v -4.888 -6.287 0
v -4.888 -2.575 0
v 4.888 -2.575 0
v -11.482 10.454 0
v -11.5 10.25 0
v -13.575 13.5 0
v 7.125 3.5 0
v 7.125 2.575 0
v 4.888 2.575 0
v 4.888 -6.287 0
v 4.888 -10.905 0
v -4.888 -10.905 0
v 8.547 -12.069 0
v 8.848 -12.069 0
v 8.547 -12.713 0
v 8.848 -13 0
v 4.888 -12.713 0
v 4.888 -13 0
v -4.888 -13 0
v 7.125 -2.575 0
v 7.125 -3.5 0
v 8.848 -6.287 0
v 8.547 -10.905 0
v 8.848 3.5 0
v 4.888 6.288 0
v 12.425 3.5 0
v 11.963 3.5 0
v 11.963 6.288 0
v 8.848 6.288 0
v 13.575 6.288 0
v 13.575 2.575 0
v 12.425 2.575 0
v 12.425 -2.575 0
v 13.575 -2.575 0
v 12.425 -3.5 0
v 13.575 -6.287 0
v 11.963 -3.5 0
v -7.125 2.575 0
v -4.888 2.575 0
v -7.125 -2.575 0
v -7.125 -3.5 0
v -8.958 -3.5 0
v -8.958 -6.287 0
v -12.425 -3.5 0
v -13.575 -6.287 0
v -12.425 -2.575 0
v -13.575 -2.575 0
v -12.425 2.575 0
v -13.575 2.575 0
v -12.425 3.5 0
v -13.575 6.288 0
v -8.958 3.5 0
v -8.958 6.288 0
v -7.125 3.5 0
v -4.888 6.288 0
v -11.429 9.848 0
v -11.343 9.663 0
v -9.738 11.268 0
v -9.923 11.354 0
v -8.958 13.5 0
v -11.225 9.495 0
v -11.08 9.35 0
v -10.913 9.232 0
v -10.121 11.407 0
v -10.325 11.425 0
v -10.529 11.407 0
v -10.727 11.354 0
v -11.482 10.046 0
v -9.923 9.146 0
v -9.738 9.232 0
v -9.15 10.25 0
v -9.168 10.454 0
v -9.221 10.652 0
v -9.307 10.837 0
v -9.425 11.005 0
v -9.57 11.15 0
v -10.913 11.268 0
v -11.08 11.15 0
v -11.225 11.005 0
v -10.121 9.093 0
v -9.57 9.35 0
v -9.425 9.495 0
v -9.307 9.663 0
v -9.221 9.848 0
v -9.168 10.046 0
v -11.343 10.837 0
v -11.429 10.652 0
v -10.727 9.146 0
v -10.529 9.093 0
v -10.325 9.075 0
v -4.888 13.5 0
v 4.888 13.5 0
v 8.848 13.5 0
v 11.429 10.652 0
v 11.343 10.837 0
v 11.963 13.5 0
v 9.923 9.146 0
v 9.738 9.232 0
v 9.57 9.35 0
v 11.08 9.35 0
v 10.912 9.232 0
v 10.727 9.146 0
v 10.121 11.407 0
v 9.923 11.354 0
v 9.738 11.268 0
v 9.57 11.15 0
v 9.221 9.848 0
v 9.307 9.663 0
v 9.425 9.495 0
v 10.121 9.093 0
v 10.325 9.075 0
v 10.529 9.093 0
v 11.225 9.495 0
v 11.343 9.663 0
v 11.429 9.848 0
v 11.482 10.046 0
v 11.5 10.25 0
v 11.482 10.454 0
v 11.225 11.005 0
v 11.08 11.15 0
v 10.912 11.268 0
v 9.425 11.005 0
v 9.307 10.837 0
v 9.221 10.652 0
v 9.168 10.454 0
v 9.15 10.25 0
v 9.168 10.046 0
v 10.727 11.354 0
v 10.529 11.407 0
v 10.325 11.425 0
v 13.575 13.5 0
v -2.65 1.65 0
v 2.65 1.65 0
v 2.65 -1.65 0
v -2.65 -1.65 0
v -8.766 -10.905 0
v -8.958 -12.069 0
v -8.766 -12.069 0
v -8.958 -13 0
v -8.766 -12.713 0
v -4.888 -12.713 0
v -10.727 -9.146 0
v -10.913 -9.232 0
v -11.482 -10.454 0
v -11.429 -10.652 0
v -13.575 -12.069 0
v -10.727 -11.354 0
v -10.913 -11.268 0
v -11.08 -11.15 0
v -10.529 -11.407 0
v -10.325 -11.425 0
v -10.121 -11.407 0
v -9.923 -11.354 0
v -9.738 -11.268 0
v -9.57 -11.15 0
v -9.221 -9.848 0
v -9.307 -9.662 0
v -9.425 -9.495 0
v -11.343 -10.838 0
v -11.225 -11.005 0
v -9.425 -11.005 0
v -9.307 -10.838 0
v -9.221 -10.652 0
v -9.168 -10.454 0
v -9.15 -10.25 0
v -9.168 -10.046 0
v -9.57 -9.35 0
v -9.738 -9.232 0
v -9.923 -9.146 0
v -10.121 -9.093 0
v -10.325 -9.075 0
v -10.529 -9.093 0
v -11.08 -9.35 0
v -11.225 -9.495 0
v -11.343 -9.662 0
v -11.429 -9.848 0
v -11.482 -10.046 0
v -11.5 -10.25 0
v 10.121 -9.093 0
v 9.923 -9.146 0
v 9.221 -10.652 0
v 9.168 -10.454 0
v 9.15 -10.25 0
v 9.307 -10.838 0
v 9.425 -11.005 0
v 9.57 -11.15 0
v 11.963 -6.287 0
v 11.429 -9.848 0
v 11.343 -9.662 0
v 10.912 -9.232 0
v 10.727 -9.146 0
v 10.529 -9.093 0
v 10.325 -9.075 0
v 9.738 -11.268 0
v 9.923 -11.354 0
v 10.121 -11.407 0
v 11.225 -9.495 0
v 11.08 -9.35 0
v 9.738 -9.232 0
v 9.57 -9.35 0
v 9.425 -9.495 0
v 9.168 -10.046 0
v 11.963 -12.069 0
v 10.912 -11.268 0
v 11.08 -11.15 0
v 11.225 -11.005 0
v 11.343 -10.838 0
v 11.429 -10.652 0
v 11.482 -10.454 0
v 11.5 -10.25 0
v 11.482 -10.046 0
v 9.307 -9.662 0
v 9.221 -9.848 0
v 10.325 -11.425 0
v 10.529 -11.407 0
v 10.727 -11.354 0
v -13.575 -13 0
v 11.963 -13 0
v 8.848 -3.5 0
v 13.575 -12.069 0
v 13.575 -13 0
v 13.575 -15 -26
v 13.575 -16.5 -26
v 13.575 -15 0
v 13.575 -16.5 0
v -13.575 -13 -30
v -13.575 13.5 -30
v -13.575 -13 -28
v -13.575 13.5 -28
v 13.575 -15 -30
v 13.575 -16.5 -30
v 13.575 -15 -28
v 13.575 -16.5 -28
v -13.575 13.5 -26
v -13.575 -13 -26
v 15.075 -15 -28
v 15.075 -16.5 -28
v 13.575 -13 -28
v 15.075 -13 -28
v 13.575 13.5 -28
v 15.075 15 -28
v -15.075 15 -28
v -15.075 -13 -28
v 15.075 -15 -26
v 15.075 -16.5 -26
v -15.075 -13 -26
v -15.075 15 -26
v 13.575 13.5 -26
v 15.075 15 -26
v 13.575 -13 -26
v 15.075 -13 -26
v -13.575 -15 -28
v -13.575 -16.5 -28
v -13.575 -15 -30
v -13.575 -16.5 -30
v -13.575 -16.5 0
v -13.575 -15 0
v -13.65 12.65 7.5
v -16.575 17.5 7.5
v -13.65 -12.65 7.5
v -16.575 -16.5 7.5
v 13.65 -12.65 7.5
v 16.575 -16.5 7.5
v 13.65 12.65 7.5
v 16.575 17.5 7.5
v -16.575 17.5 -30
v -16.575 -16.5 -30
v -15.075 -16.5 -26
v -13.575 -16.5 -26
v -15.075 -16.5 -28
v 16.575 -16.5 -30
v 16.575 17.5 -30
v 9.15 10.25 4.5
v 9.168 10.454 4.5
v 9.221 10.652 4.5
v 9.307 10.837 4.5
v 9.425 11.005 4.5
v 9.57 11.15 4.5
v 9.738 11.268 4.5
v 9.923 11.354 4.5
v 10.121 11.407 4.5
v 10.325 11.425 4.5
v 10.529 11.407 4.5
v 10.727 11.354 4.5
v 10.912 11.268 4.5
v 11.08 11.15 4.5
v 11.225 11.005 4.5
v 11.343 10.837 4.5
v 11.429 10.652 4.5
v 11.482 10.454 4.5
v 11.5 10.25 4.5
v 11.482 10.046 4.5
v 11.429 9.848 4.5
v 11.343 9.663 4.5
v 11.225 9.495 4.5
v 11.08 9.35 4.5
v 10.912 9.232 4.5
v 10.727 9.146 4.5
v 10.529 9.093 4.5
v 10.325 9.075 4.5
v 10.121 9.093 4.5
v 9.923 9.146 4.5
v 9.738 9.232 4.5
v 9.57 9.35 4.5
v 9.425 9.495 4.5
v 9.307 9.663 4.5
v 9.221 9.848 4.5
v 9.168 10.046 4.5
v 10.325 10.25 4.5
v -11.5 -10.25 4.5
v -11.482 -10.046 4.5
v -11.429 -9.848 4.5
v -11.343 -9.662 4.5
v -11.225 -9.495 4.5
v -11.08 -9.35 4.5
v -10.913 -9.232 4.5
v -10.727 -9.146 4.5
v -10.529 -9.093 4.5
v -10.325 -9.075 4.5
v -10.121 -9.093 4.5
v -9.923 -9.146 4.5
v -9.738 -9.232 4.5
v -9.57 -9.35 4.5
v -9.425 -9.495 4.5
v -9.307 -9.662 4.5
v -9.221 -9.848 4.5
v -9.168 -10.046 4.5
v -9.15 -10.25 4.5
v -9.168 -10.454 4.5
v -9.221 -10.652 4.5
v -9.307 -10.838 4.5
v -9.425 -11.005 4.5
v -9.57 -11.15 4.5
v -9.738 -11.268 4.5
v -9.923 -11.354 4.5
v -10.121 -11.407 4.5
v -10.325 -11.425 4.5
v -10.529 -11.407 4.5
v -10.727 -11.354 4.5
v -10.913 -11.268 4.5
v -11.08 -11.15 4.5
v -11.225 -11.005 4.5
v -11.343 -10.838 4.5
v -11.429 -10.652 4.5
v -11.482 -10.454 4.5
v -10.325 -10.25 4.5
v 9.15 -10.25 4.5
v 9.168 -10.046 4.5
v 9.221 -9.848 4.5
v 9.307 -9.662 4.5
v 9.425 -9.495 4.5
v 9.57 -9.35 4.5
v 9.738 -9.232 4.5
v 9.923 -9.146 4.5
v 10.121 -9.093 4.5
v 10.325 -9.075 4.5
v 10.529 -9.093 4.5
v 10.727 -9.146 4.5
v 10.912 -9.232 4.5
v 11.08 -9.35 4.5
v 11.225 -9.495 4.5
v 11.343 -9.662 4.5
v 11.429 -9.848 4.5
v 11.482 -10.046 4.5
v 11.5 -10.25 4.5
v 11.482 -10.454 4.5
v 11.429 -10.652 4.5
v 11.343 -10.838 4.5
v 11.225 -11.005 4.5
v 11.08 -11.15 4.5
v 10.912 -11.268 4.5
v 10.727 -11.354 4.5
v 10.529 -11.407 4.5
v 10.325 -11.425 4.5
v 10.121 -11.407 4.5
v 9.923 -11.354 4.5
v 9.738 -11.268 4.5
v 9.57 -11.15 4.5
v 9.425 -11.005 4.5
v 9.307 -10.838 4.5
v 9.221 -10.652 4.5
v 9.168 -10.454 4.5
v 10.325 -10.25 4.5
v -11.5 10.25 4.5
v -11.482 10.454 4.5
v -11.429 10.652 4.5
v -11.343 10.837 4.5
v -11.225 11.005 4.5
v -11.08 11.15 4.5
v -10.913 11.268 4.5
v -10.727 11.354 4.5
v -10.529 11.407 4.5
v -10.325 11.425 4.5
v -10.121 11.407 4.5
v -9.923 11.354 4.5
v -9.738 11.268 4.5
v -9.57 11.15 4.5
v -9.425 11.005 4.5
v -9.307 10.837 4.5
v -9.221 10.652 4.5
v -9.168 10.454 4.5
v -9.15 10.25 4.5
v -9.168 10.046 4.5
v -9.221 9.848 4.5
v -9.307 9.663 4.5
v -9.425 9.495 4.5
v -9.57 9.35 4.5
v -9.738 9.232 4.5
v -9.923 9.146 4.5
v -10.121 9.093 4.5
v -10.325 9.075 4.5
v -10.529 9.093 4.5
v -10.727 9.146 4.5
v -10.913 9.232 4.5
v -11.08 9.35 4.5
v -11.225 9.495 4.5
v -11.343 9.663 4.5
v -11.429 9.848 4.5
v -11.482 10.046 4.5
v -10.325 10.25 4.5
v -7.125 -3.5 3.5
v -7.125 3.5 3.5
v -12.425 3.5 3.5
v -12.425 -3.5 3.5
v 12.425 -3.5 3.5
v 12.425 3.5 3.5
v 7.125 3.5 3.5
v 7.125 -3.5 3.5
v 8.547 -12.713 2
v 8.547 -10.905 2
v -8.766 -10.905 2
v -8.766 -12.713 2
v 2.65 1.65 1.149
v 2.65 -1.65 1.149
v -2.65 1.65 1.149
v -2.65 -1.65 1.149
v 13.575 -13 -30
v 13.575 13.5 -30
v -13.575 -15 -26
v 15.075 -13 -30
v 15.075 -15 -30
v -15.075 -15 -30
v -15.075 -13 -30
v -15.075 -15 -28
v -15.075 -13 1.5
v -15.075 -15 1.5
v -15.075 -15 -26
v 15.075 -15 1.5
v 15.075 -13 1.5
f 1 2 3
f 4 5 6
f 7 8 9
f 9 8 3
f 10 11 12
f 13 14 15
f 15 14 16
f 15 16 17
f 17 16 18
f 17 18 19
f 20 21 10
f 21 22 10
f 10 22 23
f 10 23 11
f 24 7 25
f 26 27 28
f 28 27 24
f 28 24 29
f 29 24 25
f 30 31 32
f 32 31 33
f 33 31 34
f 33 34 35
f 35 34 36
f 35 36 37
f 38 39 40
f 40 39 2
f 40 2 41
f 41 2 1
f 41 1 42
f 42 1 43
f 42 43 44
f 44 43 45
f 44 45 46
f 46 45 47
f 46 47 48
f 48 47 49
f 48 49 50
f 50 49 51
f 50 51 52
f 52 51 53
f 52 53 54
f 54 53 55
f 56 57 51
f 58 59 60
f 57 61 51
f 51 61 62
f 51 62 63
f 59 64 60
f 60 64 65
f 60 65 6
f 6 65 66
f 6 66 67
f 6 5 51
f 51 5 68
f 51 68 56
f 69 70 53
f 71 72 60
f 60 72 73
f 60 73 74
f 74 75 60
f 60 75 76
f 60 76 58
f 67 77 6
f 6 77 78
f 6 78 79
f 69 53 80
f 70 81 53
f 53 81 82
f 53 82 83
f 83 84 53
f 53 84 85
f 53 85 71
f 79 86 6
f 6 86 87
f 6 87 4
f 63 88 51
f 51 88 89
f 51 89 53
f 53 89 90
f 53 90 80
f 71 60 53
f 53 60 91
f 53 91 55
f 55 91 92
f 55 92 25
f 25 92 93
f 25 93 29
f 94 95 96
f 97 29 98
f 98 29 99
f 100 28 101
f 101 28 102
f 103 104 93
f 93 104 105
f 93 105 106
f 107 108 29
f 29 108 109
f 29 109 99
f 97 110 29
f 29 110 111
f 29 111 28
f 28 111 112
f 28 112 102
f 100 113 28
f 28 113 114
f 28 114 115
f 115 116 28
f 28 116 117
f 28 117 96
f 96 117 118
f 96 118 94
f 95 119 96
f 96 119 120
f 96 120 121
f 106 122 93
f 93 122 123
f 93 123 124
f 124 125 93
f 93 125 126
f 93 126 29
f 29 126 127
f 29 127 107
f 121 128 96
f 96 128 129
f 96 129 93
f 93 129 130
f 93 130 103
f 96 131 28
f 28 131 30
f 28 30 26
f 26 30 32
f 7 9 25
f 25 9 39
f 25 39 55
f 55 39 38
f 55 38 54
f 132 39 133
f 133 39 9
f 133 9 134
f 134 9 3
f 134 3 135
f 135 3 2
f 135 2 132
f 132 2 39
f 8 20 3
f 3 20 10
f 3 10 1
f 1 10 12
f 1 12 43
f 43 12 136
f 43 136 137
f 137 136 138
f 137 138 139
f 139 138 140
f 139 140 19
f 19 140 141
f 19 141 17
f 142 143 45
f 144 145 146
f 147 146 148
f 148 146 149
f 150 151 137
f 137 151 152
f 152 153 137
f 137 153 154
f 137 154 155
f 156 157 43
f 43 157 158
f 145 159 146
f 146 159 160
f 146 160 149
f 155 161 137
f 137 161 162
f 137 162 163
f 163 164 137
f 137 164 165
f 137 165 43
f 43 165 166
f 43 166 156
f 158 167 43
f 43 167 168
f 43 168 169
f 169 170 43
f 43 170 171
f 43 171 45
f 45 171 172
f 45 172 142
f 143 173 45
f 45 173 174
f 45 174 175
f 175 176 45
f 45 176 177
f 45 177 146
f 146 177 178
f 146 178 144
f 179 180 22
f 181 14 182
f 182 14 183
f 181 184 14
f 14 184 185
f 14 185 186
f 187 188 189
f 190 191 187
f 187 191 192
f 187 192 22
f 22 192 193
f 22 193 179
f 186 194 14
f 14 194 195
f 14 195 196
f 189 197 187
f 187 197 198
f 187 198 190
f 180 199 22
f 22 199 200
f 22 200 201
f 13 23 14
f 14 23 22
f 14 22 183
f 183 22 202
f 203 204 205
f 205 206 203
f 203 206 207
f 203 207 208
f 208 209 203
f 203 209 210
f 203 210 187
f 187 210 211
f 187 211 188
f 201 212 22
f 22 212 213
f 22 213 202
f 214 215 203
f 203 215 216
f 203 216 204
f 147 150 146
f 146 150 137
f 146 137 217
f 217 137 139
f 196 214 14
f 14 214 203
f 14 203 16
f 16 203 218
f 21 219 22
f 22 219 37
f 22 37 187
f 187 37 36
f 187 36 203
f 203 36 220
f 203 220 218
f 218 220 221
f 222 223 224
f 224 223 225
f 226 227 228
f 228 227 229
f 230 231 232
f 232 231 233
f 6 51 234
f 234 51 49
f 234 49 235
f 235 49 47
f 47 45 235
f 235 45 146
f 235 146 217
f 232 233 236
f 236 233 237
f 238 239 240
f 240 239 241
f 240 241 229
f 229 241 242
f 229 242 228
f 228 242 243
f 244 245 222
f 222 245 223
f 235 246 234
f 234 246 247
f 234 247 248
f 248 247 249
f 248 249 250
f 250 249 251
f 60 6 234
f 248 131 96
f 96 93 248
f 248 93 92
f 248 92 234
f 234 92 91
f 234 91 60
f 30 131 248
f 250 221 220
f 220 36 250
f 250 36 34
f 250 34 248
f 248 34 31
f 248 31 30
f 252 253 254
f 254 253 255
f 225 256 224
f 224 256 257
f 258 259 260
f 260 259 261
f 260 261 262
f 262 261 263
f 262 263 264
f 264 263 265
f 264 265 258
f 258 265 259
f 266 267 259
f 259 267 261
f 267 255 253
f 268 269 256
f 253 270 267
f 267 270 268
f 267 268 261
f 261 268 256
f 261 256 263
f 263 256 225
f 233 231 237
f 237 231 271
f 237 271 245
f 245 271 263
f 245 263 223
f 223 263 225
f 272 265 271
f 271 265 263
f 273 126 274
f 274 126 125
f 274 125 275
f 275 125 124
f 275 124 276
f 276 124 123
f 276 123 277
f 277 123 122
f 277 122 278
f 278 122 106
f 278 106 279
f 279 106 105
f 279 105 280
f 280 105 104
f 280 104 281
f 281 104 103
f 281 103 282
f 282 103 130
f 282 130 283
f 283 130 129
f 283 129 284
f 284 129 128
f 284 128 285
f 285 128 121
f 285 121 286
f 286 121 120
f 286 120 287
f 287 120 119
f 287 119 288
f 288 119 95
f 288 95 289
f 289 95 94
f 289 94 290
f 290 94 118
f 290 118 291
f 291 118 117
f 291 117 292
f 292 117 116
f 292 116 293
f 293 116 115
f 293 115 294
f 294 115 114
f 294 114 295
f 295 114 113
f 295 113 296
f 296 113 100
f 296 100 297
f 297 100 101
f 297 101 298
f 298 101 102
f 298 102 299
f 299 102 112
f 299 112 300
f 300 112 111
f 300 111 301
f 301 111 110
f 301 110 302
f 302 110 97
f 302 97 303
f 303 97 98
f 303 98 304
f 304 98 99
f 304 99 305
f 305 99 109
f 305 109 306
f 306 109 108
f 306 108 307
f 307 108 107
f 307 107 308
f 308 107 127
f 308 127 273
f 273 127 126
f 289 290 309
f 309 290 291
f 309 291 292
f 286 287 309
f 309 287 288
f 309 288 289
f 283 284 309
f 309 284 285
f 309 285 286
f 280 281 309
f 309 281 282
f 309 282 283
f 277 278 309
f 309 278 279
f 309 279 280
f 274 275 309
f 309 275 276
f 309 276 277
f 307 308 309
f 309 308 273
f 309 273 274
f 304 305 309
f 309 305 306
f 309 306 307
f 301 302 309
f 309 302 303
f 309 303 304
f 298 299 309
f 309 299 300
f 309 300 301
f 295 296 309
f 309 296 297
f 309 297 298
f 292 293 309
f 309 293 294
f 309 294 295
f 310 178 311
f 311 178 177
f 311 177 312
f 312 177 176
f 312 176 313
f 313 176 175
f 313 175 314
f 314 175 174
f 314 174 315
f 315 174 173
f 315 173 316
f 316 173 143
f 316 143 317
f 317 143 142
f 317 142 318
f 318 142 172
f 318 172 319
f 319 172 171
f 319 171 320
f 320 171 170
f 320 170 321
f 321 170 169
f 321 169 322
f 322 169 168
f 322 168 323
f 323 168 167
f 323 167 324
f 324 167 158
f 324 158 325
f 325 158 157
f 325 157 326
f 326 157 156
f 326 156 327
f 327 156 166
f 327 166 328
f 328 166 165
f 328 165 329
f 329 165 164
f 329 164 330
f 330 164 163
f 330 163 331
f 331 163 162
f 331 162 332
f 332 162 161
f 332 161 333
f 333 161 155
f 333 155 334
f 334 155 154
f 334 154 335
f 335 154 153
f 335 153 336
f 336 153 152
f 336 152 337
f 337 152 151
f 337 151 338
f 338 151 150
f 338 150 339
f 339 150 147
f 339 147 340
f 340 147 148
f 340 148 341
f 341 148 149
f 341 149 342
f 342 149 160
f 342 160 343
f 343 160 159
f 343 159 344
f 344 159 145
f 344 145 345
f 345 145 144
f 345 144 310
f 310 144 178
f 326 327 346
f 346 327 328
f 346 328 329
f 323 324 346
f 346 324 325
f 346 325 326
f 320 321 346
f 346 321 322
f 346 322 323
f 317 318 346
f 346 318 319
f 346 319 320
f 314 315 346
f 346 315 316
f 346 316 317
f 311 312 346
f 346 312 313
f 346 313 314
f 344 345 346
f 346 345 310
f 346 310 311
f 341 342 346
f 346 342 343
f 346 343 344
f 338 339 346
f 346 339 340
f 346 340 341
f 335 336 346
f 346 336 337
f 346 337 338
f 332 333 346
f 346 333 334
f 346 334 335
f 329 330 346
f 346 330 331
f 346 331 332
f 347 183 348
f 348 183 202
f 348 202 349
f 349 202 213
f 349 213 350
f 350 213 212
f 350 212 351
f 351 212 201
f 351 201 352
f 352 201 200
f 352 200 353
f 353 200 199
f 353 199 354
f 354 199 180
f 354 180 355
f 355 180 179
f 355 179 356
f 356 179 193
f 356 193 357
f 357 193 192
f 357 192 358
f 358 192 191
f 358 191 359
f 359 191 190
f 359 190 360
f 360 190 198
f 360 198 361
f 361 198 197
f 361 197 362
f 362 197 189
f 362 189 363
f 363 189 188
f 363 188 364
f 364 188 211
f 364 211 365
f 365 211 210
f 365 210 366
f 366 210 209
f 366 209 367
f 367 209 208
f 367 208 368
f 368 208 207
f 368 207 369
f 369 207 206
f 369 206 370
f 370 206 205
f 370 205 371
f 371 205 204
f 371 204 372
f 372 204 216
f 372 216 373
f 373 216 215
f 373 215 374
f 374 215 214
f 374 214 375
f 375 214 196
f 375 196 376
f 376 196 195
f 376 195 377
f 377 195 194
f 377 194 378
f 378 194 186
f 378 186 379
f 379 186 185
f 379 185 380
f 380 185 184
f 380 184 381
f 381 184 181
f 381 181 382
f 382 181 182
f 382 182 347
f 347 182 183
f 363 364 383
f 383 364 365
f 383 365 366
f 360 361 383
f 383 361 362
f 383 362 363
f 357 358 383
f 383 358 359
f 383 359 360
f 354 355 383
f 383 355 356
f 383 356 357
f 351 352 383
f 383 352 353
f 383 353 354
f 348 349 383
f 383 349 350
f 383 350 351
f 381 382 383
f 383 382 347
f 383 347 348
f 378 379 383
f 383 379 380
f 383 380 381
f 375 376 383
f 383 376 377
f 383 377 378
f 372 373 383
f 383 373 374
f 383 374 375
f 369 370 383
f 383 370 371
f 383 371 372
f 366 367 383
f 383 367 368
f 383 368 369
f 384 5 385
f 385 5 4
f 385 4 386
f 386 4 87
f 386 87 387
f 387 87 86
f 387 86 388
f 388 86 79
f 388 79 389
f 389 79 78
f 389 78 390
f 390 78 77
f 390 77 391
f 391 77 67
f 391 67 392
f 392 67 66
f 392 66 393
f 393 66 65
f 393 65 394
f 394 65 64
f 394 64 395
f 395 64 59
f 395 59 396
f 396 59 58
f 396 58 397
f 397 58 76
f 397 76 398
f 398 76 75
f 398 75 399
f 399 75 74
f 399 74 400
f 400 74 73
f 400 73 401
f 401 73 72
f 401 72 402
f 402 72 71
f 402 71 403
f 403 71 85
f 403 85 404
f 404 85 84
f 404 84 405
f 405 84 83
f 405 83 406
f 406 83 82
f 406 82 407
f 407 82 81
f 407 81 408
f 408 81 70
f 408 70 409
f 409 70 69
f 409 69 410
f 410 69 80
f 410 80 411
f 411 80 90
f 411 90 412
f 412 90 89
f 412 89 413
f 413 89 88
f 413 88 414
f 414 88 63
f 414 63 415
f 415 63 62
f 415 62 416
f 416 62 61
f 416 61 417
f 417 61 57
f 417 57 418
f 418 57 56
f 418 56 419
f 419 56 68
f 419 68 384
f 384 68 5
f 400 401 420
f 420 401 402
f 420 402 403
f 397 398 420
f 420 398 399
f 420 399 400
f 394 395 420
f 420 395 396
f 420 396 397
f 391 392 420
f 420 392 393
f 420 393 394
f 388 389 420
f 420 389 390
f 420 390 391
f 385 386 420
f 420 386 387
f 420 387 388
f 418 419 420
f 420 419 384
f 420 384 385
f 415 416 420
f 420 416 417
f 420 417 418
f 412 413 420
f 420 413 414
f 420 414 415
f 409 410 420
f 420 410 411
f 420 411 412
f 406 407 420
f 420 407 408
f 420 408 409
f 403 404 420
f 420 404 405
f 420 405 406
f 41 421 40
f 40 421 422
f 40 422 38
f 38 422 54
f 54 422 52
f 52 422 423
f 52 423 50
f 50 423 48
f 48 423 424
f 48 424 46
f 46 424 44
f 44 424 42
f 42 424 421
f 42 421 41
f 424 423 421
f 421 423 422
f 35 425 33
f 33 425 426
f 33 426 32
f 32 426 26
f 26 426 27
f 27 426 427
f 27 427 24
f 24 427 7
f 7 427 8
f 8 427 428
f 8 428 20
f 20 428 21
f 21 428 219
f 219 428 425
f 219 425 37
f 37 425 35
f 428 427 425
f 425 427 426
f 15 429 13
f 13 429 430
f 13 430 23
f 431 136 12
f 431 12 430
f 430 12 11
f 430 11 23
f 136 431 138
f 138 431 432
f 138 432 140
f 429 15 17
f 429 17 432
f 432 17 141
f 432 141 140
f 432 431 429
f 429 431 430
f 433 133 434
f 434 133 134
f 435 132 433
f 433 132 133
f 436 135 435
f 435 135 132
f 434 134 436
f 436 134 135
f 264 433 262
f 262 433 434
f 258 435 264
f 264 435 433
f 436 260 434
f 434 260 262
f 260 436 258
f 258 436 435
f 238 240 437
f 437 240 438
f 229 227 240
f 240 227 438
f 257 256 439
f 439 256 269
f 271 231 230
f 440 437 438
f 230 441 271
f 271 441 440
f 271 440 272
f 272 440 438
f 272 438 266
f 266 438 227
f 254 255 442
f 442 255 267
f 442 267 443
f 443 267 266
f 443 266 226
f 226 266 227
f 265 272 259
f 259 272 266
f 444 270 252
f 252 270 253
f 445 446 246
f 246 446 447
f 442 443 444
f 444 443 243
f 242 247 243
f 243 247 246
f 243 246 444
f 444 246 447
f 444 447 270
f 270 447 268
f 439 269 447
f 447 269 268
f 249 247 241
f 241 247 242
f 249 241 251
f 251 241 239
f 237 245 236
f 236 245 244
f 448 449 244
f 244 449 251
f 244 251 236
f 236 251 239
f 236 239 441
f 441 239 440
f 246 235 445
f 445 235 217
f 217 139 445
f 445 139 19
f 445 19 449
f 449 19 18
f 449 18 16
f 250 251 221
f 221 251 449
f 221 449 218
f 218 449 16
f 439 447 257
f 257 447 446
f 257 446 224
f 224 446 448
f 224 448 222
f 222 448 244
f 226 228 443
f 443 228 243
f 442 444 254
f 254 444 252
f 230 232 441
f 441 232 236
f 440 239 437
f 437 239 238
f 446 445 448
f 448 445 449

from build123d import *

# Parameters (mm, degrees)
SKETCH2_W           = 33.15
SKETCH2_H           = 33
BOSS_EXTRUDE1_DEPTH = 7.5
SKETCH3_R           = 1.175
CUT_EXTRUDE1_DEPTH  = 4.5
SKETCH4_W           = 5.3
SKETCH4_H           = 7
CUT_EXTRUDE2_DEPTH  = 3.5
SKETCH5_W           = 17.312690108
SKETCH5_H           = 1.808425299
CUT_EXTRUDE3_DEPTH  = 2
SKETCH6_W           = 5.3
SKETCH6_H           = 3.3
CUT_EXTRUDE4_DEPTH  = 25.560753755
CHAMFER3_SIZE       = 11
CHAMFER3_SIZE2      = 6.350852961
SKETCH7_W           = 3
SKETCH7_H           = 33
SKETCH7_H_2         = 30
BOSS_EXTRUDE2_DEPTH = 30
SKETCH8_W           = 33.15
SKETCH8_H           = 37.5
BOSS_EXTRUDE3_DEPTH = 1
SKETCH9_W           = 1.5
SKETCH9_H           = 2
CUT_EXTRUDE5_DEPTH  = 31.5
SKETCH10_W          = 27.15
SKETCH10_H          = 2
CUT_EXTRUDE6_DEPTH  = 1.5
CUT_EXTRUDE7_START  = -30
SKETCH11_W          = 1.5
SKETCH11_H          = 2
CUT_EXTRUDE7_DEPTH  = 30
SKETCH14_W          = 30.15
SKETCH14_H          = 2
CUT_EXTRUDE8_DEPTH  = 1.5


with BuildPart() as part:
    # Sketch2 → Boss-Extrude1 (new body)
    with BuildSketch(Plane.XY):
        Rectangle(SKETCH2_W, SKETCH2_H)
    extrude(amount=BOSS_EXTRUDE1_DEPTH)

    # Sketch3 → Cut-Extrude1 (cut)
    with BuildSketch(Plane.XY):
        with Locations((10.325, 10.25)):
            Circle(SKETCH3_R)
        with Locations((-10.325, 10.25)):
            Circle(SKETCH3_R)
        with Locations((10.325, -10.25)):
            Circle(SKETCH3_R)
        with Locations((-10.325, -10.25)):
            Circle(SKETCH3_R)
    extrude(amount=CUT_EXTRUDE1_DEPTH, mode=Mode.SUBTRACT)

    # Sketch4 → Cut-Extrude2 (cut)
    with BuildSketch(Plane.XY):
        with Locations((9.775, 0)):
            Rectangle(SKETCH4_W, SKETCH4_H)
        with Locations((-9.775, 0)):
            Rectangle(SKETCH4_W, SKETCH4_H)
    extrude(amount=CUT_EXTRUDE2_DEPTH, mode=Mode.SUBTRACT)

    # Sketch5 → Cut-Extrude3 (cut)
    with BuildSketch(Plane.XY):
        with Locations((-0.109621432, -11.80915301)):
            Rectangle(SKETCH5_W, SKETCH5_H)
    extrude(amount=CUT_EXTRUDE3_DEPTH, mode=Mode.SUBTRACT)

    # Sketch6 → Cut-Extrude4 (cut, through all)
    with BuildSketch(Plane.XY):
        Rectangle(SKETCH6_W, SKETCH6_H)
    extrude(amount=CUT_EXTRUDE4_DEPTH, mode=Mode.SUBTRACT)

    # Chamfer3
    chamfer3_edges = [part.edges().sort_by_distance(p)[0] for p in [
        (2.65, 0, 7.5),
        (0, 1.65, 7.5),
        (-2.65, 0, 7.5),
        (0, -1.65, 7.5),
    ]]
    chamfer3_side = [part.faces().sort_by_distance(p)[0] for p in [
        (-16.107247662, 0, 7.5),
    ]]
    chamfer(chamfer3_edges, length=CHAMFER3_SIZE, length2=CHAMFER3_SIZE2, reference=chamfer3_side[0])

    # Sketch7 → Boss-Extrude2 (add)
    with BuildSketch(Plane.XY):
        with Locations((15.075, 0)):
            Rectangle(SKETCH7_W, SKETCH7_H)
        Polygon((-13.575, 13.5), (13.575, 13.5), (13.575, 16.5), (-16.575, 16.5), (-16.575, 13.5), align=None)
        with Locations((-15.075, -1.5)):
            Rectangle(SKETCH7_W, SKETCH7_H_2)
    extrude(amount=-BOSS_EXTRUDE2_DEPTH)

    # Sketch8 → Boss-Extrude3 (add)
    with BuildSketch(Plane(origin=(0, 16.5, 0), x_dir=(1, 0, 0), z_dir=(0, 1, 0))):
        with Locations((0, 11.25)):
            Rectangle(SKETCH8_W, SKETCH8_H)
    extrude(amount=BOSS_EXTRUDE3_DEPTH)

    # Sketch9 → Cut-Extrude5 (cut)
    with BuildSketch(Plane.XZ.offset(16.5)):
        with Locations((-14.325, -27)):
            Rectangle(SKETCH9_W, SKETCH9_H)
        with Locations((14.325, -27)):
            Rectangle(SKETCH9_W, SKETCH9_H)
    extrude(amount=-CUT_EXTRUDE5_DEPTH, mode=Mode.SUBTRACT)

    # Sketch10 → Cut-Extrude6 (cut)
    with BuildSketch(Plane.XZ.offset(-13.5)):
        with Locations((0, -27)):
            Rectangle(SKETCH10_W, SKETCH10_H)
    extrude(amount=-CUT_EXTRUDE6_DEPTH, mode=Mode.SUBTRACT)

    # Sketch11 → Cut-Extrude7 (cut)
    with BuildSketch(Plane(origin=(0, 0, -30), x_dir=(-1, 0, 0), z_dir=(0, 0, -1)).offset(CUT_EXTRUDE7_START)):
        with Locations((-14.325, -14)):
            Rectangle(SKETCH11_W, SKETCH11_H)
        with Locations((14.325, -14)):
            Rectangle(SKETCH11_W, SKETCH11_H)
    extrude(amount=CUT_EXTRUDE7_DEPTH, mode=Mode.SUBTRACT)

    # Sketch14 → Cut-Extrude8 (cut)
    with BuildSketch(Plane(origin=(0, 0, 0), x_dir=(-1, 0, 0), z_dir=(0, 0, -1))):
        with Locations((0, -14)):
            Rectangle(SKETCH14_W, SKETCH14_H)
    extrude(amount=-CUT_EXTRUDE8_DEPTH, mode=Mode.SUBTRACT)


solid = part.part
